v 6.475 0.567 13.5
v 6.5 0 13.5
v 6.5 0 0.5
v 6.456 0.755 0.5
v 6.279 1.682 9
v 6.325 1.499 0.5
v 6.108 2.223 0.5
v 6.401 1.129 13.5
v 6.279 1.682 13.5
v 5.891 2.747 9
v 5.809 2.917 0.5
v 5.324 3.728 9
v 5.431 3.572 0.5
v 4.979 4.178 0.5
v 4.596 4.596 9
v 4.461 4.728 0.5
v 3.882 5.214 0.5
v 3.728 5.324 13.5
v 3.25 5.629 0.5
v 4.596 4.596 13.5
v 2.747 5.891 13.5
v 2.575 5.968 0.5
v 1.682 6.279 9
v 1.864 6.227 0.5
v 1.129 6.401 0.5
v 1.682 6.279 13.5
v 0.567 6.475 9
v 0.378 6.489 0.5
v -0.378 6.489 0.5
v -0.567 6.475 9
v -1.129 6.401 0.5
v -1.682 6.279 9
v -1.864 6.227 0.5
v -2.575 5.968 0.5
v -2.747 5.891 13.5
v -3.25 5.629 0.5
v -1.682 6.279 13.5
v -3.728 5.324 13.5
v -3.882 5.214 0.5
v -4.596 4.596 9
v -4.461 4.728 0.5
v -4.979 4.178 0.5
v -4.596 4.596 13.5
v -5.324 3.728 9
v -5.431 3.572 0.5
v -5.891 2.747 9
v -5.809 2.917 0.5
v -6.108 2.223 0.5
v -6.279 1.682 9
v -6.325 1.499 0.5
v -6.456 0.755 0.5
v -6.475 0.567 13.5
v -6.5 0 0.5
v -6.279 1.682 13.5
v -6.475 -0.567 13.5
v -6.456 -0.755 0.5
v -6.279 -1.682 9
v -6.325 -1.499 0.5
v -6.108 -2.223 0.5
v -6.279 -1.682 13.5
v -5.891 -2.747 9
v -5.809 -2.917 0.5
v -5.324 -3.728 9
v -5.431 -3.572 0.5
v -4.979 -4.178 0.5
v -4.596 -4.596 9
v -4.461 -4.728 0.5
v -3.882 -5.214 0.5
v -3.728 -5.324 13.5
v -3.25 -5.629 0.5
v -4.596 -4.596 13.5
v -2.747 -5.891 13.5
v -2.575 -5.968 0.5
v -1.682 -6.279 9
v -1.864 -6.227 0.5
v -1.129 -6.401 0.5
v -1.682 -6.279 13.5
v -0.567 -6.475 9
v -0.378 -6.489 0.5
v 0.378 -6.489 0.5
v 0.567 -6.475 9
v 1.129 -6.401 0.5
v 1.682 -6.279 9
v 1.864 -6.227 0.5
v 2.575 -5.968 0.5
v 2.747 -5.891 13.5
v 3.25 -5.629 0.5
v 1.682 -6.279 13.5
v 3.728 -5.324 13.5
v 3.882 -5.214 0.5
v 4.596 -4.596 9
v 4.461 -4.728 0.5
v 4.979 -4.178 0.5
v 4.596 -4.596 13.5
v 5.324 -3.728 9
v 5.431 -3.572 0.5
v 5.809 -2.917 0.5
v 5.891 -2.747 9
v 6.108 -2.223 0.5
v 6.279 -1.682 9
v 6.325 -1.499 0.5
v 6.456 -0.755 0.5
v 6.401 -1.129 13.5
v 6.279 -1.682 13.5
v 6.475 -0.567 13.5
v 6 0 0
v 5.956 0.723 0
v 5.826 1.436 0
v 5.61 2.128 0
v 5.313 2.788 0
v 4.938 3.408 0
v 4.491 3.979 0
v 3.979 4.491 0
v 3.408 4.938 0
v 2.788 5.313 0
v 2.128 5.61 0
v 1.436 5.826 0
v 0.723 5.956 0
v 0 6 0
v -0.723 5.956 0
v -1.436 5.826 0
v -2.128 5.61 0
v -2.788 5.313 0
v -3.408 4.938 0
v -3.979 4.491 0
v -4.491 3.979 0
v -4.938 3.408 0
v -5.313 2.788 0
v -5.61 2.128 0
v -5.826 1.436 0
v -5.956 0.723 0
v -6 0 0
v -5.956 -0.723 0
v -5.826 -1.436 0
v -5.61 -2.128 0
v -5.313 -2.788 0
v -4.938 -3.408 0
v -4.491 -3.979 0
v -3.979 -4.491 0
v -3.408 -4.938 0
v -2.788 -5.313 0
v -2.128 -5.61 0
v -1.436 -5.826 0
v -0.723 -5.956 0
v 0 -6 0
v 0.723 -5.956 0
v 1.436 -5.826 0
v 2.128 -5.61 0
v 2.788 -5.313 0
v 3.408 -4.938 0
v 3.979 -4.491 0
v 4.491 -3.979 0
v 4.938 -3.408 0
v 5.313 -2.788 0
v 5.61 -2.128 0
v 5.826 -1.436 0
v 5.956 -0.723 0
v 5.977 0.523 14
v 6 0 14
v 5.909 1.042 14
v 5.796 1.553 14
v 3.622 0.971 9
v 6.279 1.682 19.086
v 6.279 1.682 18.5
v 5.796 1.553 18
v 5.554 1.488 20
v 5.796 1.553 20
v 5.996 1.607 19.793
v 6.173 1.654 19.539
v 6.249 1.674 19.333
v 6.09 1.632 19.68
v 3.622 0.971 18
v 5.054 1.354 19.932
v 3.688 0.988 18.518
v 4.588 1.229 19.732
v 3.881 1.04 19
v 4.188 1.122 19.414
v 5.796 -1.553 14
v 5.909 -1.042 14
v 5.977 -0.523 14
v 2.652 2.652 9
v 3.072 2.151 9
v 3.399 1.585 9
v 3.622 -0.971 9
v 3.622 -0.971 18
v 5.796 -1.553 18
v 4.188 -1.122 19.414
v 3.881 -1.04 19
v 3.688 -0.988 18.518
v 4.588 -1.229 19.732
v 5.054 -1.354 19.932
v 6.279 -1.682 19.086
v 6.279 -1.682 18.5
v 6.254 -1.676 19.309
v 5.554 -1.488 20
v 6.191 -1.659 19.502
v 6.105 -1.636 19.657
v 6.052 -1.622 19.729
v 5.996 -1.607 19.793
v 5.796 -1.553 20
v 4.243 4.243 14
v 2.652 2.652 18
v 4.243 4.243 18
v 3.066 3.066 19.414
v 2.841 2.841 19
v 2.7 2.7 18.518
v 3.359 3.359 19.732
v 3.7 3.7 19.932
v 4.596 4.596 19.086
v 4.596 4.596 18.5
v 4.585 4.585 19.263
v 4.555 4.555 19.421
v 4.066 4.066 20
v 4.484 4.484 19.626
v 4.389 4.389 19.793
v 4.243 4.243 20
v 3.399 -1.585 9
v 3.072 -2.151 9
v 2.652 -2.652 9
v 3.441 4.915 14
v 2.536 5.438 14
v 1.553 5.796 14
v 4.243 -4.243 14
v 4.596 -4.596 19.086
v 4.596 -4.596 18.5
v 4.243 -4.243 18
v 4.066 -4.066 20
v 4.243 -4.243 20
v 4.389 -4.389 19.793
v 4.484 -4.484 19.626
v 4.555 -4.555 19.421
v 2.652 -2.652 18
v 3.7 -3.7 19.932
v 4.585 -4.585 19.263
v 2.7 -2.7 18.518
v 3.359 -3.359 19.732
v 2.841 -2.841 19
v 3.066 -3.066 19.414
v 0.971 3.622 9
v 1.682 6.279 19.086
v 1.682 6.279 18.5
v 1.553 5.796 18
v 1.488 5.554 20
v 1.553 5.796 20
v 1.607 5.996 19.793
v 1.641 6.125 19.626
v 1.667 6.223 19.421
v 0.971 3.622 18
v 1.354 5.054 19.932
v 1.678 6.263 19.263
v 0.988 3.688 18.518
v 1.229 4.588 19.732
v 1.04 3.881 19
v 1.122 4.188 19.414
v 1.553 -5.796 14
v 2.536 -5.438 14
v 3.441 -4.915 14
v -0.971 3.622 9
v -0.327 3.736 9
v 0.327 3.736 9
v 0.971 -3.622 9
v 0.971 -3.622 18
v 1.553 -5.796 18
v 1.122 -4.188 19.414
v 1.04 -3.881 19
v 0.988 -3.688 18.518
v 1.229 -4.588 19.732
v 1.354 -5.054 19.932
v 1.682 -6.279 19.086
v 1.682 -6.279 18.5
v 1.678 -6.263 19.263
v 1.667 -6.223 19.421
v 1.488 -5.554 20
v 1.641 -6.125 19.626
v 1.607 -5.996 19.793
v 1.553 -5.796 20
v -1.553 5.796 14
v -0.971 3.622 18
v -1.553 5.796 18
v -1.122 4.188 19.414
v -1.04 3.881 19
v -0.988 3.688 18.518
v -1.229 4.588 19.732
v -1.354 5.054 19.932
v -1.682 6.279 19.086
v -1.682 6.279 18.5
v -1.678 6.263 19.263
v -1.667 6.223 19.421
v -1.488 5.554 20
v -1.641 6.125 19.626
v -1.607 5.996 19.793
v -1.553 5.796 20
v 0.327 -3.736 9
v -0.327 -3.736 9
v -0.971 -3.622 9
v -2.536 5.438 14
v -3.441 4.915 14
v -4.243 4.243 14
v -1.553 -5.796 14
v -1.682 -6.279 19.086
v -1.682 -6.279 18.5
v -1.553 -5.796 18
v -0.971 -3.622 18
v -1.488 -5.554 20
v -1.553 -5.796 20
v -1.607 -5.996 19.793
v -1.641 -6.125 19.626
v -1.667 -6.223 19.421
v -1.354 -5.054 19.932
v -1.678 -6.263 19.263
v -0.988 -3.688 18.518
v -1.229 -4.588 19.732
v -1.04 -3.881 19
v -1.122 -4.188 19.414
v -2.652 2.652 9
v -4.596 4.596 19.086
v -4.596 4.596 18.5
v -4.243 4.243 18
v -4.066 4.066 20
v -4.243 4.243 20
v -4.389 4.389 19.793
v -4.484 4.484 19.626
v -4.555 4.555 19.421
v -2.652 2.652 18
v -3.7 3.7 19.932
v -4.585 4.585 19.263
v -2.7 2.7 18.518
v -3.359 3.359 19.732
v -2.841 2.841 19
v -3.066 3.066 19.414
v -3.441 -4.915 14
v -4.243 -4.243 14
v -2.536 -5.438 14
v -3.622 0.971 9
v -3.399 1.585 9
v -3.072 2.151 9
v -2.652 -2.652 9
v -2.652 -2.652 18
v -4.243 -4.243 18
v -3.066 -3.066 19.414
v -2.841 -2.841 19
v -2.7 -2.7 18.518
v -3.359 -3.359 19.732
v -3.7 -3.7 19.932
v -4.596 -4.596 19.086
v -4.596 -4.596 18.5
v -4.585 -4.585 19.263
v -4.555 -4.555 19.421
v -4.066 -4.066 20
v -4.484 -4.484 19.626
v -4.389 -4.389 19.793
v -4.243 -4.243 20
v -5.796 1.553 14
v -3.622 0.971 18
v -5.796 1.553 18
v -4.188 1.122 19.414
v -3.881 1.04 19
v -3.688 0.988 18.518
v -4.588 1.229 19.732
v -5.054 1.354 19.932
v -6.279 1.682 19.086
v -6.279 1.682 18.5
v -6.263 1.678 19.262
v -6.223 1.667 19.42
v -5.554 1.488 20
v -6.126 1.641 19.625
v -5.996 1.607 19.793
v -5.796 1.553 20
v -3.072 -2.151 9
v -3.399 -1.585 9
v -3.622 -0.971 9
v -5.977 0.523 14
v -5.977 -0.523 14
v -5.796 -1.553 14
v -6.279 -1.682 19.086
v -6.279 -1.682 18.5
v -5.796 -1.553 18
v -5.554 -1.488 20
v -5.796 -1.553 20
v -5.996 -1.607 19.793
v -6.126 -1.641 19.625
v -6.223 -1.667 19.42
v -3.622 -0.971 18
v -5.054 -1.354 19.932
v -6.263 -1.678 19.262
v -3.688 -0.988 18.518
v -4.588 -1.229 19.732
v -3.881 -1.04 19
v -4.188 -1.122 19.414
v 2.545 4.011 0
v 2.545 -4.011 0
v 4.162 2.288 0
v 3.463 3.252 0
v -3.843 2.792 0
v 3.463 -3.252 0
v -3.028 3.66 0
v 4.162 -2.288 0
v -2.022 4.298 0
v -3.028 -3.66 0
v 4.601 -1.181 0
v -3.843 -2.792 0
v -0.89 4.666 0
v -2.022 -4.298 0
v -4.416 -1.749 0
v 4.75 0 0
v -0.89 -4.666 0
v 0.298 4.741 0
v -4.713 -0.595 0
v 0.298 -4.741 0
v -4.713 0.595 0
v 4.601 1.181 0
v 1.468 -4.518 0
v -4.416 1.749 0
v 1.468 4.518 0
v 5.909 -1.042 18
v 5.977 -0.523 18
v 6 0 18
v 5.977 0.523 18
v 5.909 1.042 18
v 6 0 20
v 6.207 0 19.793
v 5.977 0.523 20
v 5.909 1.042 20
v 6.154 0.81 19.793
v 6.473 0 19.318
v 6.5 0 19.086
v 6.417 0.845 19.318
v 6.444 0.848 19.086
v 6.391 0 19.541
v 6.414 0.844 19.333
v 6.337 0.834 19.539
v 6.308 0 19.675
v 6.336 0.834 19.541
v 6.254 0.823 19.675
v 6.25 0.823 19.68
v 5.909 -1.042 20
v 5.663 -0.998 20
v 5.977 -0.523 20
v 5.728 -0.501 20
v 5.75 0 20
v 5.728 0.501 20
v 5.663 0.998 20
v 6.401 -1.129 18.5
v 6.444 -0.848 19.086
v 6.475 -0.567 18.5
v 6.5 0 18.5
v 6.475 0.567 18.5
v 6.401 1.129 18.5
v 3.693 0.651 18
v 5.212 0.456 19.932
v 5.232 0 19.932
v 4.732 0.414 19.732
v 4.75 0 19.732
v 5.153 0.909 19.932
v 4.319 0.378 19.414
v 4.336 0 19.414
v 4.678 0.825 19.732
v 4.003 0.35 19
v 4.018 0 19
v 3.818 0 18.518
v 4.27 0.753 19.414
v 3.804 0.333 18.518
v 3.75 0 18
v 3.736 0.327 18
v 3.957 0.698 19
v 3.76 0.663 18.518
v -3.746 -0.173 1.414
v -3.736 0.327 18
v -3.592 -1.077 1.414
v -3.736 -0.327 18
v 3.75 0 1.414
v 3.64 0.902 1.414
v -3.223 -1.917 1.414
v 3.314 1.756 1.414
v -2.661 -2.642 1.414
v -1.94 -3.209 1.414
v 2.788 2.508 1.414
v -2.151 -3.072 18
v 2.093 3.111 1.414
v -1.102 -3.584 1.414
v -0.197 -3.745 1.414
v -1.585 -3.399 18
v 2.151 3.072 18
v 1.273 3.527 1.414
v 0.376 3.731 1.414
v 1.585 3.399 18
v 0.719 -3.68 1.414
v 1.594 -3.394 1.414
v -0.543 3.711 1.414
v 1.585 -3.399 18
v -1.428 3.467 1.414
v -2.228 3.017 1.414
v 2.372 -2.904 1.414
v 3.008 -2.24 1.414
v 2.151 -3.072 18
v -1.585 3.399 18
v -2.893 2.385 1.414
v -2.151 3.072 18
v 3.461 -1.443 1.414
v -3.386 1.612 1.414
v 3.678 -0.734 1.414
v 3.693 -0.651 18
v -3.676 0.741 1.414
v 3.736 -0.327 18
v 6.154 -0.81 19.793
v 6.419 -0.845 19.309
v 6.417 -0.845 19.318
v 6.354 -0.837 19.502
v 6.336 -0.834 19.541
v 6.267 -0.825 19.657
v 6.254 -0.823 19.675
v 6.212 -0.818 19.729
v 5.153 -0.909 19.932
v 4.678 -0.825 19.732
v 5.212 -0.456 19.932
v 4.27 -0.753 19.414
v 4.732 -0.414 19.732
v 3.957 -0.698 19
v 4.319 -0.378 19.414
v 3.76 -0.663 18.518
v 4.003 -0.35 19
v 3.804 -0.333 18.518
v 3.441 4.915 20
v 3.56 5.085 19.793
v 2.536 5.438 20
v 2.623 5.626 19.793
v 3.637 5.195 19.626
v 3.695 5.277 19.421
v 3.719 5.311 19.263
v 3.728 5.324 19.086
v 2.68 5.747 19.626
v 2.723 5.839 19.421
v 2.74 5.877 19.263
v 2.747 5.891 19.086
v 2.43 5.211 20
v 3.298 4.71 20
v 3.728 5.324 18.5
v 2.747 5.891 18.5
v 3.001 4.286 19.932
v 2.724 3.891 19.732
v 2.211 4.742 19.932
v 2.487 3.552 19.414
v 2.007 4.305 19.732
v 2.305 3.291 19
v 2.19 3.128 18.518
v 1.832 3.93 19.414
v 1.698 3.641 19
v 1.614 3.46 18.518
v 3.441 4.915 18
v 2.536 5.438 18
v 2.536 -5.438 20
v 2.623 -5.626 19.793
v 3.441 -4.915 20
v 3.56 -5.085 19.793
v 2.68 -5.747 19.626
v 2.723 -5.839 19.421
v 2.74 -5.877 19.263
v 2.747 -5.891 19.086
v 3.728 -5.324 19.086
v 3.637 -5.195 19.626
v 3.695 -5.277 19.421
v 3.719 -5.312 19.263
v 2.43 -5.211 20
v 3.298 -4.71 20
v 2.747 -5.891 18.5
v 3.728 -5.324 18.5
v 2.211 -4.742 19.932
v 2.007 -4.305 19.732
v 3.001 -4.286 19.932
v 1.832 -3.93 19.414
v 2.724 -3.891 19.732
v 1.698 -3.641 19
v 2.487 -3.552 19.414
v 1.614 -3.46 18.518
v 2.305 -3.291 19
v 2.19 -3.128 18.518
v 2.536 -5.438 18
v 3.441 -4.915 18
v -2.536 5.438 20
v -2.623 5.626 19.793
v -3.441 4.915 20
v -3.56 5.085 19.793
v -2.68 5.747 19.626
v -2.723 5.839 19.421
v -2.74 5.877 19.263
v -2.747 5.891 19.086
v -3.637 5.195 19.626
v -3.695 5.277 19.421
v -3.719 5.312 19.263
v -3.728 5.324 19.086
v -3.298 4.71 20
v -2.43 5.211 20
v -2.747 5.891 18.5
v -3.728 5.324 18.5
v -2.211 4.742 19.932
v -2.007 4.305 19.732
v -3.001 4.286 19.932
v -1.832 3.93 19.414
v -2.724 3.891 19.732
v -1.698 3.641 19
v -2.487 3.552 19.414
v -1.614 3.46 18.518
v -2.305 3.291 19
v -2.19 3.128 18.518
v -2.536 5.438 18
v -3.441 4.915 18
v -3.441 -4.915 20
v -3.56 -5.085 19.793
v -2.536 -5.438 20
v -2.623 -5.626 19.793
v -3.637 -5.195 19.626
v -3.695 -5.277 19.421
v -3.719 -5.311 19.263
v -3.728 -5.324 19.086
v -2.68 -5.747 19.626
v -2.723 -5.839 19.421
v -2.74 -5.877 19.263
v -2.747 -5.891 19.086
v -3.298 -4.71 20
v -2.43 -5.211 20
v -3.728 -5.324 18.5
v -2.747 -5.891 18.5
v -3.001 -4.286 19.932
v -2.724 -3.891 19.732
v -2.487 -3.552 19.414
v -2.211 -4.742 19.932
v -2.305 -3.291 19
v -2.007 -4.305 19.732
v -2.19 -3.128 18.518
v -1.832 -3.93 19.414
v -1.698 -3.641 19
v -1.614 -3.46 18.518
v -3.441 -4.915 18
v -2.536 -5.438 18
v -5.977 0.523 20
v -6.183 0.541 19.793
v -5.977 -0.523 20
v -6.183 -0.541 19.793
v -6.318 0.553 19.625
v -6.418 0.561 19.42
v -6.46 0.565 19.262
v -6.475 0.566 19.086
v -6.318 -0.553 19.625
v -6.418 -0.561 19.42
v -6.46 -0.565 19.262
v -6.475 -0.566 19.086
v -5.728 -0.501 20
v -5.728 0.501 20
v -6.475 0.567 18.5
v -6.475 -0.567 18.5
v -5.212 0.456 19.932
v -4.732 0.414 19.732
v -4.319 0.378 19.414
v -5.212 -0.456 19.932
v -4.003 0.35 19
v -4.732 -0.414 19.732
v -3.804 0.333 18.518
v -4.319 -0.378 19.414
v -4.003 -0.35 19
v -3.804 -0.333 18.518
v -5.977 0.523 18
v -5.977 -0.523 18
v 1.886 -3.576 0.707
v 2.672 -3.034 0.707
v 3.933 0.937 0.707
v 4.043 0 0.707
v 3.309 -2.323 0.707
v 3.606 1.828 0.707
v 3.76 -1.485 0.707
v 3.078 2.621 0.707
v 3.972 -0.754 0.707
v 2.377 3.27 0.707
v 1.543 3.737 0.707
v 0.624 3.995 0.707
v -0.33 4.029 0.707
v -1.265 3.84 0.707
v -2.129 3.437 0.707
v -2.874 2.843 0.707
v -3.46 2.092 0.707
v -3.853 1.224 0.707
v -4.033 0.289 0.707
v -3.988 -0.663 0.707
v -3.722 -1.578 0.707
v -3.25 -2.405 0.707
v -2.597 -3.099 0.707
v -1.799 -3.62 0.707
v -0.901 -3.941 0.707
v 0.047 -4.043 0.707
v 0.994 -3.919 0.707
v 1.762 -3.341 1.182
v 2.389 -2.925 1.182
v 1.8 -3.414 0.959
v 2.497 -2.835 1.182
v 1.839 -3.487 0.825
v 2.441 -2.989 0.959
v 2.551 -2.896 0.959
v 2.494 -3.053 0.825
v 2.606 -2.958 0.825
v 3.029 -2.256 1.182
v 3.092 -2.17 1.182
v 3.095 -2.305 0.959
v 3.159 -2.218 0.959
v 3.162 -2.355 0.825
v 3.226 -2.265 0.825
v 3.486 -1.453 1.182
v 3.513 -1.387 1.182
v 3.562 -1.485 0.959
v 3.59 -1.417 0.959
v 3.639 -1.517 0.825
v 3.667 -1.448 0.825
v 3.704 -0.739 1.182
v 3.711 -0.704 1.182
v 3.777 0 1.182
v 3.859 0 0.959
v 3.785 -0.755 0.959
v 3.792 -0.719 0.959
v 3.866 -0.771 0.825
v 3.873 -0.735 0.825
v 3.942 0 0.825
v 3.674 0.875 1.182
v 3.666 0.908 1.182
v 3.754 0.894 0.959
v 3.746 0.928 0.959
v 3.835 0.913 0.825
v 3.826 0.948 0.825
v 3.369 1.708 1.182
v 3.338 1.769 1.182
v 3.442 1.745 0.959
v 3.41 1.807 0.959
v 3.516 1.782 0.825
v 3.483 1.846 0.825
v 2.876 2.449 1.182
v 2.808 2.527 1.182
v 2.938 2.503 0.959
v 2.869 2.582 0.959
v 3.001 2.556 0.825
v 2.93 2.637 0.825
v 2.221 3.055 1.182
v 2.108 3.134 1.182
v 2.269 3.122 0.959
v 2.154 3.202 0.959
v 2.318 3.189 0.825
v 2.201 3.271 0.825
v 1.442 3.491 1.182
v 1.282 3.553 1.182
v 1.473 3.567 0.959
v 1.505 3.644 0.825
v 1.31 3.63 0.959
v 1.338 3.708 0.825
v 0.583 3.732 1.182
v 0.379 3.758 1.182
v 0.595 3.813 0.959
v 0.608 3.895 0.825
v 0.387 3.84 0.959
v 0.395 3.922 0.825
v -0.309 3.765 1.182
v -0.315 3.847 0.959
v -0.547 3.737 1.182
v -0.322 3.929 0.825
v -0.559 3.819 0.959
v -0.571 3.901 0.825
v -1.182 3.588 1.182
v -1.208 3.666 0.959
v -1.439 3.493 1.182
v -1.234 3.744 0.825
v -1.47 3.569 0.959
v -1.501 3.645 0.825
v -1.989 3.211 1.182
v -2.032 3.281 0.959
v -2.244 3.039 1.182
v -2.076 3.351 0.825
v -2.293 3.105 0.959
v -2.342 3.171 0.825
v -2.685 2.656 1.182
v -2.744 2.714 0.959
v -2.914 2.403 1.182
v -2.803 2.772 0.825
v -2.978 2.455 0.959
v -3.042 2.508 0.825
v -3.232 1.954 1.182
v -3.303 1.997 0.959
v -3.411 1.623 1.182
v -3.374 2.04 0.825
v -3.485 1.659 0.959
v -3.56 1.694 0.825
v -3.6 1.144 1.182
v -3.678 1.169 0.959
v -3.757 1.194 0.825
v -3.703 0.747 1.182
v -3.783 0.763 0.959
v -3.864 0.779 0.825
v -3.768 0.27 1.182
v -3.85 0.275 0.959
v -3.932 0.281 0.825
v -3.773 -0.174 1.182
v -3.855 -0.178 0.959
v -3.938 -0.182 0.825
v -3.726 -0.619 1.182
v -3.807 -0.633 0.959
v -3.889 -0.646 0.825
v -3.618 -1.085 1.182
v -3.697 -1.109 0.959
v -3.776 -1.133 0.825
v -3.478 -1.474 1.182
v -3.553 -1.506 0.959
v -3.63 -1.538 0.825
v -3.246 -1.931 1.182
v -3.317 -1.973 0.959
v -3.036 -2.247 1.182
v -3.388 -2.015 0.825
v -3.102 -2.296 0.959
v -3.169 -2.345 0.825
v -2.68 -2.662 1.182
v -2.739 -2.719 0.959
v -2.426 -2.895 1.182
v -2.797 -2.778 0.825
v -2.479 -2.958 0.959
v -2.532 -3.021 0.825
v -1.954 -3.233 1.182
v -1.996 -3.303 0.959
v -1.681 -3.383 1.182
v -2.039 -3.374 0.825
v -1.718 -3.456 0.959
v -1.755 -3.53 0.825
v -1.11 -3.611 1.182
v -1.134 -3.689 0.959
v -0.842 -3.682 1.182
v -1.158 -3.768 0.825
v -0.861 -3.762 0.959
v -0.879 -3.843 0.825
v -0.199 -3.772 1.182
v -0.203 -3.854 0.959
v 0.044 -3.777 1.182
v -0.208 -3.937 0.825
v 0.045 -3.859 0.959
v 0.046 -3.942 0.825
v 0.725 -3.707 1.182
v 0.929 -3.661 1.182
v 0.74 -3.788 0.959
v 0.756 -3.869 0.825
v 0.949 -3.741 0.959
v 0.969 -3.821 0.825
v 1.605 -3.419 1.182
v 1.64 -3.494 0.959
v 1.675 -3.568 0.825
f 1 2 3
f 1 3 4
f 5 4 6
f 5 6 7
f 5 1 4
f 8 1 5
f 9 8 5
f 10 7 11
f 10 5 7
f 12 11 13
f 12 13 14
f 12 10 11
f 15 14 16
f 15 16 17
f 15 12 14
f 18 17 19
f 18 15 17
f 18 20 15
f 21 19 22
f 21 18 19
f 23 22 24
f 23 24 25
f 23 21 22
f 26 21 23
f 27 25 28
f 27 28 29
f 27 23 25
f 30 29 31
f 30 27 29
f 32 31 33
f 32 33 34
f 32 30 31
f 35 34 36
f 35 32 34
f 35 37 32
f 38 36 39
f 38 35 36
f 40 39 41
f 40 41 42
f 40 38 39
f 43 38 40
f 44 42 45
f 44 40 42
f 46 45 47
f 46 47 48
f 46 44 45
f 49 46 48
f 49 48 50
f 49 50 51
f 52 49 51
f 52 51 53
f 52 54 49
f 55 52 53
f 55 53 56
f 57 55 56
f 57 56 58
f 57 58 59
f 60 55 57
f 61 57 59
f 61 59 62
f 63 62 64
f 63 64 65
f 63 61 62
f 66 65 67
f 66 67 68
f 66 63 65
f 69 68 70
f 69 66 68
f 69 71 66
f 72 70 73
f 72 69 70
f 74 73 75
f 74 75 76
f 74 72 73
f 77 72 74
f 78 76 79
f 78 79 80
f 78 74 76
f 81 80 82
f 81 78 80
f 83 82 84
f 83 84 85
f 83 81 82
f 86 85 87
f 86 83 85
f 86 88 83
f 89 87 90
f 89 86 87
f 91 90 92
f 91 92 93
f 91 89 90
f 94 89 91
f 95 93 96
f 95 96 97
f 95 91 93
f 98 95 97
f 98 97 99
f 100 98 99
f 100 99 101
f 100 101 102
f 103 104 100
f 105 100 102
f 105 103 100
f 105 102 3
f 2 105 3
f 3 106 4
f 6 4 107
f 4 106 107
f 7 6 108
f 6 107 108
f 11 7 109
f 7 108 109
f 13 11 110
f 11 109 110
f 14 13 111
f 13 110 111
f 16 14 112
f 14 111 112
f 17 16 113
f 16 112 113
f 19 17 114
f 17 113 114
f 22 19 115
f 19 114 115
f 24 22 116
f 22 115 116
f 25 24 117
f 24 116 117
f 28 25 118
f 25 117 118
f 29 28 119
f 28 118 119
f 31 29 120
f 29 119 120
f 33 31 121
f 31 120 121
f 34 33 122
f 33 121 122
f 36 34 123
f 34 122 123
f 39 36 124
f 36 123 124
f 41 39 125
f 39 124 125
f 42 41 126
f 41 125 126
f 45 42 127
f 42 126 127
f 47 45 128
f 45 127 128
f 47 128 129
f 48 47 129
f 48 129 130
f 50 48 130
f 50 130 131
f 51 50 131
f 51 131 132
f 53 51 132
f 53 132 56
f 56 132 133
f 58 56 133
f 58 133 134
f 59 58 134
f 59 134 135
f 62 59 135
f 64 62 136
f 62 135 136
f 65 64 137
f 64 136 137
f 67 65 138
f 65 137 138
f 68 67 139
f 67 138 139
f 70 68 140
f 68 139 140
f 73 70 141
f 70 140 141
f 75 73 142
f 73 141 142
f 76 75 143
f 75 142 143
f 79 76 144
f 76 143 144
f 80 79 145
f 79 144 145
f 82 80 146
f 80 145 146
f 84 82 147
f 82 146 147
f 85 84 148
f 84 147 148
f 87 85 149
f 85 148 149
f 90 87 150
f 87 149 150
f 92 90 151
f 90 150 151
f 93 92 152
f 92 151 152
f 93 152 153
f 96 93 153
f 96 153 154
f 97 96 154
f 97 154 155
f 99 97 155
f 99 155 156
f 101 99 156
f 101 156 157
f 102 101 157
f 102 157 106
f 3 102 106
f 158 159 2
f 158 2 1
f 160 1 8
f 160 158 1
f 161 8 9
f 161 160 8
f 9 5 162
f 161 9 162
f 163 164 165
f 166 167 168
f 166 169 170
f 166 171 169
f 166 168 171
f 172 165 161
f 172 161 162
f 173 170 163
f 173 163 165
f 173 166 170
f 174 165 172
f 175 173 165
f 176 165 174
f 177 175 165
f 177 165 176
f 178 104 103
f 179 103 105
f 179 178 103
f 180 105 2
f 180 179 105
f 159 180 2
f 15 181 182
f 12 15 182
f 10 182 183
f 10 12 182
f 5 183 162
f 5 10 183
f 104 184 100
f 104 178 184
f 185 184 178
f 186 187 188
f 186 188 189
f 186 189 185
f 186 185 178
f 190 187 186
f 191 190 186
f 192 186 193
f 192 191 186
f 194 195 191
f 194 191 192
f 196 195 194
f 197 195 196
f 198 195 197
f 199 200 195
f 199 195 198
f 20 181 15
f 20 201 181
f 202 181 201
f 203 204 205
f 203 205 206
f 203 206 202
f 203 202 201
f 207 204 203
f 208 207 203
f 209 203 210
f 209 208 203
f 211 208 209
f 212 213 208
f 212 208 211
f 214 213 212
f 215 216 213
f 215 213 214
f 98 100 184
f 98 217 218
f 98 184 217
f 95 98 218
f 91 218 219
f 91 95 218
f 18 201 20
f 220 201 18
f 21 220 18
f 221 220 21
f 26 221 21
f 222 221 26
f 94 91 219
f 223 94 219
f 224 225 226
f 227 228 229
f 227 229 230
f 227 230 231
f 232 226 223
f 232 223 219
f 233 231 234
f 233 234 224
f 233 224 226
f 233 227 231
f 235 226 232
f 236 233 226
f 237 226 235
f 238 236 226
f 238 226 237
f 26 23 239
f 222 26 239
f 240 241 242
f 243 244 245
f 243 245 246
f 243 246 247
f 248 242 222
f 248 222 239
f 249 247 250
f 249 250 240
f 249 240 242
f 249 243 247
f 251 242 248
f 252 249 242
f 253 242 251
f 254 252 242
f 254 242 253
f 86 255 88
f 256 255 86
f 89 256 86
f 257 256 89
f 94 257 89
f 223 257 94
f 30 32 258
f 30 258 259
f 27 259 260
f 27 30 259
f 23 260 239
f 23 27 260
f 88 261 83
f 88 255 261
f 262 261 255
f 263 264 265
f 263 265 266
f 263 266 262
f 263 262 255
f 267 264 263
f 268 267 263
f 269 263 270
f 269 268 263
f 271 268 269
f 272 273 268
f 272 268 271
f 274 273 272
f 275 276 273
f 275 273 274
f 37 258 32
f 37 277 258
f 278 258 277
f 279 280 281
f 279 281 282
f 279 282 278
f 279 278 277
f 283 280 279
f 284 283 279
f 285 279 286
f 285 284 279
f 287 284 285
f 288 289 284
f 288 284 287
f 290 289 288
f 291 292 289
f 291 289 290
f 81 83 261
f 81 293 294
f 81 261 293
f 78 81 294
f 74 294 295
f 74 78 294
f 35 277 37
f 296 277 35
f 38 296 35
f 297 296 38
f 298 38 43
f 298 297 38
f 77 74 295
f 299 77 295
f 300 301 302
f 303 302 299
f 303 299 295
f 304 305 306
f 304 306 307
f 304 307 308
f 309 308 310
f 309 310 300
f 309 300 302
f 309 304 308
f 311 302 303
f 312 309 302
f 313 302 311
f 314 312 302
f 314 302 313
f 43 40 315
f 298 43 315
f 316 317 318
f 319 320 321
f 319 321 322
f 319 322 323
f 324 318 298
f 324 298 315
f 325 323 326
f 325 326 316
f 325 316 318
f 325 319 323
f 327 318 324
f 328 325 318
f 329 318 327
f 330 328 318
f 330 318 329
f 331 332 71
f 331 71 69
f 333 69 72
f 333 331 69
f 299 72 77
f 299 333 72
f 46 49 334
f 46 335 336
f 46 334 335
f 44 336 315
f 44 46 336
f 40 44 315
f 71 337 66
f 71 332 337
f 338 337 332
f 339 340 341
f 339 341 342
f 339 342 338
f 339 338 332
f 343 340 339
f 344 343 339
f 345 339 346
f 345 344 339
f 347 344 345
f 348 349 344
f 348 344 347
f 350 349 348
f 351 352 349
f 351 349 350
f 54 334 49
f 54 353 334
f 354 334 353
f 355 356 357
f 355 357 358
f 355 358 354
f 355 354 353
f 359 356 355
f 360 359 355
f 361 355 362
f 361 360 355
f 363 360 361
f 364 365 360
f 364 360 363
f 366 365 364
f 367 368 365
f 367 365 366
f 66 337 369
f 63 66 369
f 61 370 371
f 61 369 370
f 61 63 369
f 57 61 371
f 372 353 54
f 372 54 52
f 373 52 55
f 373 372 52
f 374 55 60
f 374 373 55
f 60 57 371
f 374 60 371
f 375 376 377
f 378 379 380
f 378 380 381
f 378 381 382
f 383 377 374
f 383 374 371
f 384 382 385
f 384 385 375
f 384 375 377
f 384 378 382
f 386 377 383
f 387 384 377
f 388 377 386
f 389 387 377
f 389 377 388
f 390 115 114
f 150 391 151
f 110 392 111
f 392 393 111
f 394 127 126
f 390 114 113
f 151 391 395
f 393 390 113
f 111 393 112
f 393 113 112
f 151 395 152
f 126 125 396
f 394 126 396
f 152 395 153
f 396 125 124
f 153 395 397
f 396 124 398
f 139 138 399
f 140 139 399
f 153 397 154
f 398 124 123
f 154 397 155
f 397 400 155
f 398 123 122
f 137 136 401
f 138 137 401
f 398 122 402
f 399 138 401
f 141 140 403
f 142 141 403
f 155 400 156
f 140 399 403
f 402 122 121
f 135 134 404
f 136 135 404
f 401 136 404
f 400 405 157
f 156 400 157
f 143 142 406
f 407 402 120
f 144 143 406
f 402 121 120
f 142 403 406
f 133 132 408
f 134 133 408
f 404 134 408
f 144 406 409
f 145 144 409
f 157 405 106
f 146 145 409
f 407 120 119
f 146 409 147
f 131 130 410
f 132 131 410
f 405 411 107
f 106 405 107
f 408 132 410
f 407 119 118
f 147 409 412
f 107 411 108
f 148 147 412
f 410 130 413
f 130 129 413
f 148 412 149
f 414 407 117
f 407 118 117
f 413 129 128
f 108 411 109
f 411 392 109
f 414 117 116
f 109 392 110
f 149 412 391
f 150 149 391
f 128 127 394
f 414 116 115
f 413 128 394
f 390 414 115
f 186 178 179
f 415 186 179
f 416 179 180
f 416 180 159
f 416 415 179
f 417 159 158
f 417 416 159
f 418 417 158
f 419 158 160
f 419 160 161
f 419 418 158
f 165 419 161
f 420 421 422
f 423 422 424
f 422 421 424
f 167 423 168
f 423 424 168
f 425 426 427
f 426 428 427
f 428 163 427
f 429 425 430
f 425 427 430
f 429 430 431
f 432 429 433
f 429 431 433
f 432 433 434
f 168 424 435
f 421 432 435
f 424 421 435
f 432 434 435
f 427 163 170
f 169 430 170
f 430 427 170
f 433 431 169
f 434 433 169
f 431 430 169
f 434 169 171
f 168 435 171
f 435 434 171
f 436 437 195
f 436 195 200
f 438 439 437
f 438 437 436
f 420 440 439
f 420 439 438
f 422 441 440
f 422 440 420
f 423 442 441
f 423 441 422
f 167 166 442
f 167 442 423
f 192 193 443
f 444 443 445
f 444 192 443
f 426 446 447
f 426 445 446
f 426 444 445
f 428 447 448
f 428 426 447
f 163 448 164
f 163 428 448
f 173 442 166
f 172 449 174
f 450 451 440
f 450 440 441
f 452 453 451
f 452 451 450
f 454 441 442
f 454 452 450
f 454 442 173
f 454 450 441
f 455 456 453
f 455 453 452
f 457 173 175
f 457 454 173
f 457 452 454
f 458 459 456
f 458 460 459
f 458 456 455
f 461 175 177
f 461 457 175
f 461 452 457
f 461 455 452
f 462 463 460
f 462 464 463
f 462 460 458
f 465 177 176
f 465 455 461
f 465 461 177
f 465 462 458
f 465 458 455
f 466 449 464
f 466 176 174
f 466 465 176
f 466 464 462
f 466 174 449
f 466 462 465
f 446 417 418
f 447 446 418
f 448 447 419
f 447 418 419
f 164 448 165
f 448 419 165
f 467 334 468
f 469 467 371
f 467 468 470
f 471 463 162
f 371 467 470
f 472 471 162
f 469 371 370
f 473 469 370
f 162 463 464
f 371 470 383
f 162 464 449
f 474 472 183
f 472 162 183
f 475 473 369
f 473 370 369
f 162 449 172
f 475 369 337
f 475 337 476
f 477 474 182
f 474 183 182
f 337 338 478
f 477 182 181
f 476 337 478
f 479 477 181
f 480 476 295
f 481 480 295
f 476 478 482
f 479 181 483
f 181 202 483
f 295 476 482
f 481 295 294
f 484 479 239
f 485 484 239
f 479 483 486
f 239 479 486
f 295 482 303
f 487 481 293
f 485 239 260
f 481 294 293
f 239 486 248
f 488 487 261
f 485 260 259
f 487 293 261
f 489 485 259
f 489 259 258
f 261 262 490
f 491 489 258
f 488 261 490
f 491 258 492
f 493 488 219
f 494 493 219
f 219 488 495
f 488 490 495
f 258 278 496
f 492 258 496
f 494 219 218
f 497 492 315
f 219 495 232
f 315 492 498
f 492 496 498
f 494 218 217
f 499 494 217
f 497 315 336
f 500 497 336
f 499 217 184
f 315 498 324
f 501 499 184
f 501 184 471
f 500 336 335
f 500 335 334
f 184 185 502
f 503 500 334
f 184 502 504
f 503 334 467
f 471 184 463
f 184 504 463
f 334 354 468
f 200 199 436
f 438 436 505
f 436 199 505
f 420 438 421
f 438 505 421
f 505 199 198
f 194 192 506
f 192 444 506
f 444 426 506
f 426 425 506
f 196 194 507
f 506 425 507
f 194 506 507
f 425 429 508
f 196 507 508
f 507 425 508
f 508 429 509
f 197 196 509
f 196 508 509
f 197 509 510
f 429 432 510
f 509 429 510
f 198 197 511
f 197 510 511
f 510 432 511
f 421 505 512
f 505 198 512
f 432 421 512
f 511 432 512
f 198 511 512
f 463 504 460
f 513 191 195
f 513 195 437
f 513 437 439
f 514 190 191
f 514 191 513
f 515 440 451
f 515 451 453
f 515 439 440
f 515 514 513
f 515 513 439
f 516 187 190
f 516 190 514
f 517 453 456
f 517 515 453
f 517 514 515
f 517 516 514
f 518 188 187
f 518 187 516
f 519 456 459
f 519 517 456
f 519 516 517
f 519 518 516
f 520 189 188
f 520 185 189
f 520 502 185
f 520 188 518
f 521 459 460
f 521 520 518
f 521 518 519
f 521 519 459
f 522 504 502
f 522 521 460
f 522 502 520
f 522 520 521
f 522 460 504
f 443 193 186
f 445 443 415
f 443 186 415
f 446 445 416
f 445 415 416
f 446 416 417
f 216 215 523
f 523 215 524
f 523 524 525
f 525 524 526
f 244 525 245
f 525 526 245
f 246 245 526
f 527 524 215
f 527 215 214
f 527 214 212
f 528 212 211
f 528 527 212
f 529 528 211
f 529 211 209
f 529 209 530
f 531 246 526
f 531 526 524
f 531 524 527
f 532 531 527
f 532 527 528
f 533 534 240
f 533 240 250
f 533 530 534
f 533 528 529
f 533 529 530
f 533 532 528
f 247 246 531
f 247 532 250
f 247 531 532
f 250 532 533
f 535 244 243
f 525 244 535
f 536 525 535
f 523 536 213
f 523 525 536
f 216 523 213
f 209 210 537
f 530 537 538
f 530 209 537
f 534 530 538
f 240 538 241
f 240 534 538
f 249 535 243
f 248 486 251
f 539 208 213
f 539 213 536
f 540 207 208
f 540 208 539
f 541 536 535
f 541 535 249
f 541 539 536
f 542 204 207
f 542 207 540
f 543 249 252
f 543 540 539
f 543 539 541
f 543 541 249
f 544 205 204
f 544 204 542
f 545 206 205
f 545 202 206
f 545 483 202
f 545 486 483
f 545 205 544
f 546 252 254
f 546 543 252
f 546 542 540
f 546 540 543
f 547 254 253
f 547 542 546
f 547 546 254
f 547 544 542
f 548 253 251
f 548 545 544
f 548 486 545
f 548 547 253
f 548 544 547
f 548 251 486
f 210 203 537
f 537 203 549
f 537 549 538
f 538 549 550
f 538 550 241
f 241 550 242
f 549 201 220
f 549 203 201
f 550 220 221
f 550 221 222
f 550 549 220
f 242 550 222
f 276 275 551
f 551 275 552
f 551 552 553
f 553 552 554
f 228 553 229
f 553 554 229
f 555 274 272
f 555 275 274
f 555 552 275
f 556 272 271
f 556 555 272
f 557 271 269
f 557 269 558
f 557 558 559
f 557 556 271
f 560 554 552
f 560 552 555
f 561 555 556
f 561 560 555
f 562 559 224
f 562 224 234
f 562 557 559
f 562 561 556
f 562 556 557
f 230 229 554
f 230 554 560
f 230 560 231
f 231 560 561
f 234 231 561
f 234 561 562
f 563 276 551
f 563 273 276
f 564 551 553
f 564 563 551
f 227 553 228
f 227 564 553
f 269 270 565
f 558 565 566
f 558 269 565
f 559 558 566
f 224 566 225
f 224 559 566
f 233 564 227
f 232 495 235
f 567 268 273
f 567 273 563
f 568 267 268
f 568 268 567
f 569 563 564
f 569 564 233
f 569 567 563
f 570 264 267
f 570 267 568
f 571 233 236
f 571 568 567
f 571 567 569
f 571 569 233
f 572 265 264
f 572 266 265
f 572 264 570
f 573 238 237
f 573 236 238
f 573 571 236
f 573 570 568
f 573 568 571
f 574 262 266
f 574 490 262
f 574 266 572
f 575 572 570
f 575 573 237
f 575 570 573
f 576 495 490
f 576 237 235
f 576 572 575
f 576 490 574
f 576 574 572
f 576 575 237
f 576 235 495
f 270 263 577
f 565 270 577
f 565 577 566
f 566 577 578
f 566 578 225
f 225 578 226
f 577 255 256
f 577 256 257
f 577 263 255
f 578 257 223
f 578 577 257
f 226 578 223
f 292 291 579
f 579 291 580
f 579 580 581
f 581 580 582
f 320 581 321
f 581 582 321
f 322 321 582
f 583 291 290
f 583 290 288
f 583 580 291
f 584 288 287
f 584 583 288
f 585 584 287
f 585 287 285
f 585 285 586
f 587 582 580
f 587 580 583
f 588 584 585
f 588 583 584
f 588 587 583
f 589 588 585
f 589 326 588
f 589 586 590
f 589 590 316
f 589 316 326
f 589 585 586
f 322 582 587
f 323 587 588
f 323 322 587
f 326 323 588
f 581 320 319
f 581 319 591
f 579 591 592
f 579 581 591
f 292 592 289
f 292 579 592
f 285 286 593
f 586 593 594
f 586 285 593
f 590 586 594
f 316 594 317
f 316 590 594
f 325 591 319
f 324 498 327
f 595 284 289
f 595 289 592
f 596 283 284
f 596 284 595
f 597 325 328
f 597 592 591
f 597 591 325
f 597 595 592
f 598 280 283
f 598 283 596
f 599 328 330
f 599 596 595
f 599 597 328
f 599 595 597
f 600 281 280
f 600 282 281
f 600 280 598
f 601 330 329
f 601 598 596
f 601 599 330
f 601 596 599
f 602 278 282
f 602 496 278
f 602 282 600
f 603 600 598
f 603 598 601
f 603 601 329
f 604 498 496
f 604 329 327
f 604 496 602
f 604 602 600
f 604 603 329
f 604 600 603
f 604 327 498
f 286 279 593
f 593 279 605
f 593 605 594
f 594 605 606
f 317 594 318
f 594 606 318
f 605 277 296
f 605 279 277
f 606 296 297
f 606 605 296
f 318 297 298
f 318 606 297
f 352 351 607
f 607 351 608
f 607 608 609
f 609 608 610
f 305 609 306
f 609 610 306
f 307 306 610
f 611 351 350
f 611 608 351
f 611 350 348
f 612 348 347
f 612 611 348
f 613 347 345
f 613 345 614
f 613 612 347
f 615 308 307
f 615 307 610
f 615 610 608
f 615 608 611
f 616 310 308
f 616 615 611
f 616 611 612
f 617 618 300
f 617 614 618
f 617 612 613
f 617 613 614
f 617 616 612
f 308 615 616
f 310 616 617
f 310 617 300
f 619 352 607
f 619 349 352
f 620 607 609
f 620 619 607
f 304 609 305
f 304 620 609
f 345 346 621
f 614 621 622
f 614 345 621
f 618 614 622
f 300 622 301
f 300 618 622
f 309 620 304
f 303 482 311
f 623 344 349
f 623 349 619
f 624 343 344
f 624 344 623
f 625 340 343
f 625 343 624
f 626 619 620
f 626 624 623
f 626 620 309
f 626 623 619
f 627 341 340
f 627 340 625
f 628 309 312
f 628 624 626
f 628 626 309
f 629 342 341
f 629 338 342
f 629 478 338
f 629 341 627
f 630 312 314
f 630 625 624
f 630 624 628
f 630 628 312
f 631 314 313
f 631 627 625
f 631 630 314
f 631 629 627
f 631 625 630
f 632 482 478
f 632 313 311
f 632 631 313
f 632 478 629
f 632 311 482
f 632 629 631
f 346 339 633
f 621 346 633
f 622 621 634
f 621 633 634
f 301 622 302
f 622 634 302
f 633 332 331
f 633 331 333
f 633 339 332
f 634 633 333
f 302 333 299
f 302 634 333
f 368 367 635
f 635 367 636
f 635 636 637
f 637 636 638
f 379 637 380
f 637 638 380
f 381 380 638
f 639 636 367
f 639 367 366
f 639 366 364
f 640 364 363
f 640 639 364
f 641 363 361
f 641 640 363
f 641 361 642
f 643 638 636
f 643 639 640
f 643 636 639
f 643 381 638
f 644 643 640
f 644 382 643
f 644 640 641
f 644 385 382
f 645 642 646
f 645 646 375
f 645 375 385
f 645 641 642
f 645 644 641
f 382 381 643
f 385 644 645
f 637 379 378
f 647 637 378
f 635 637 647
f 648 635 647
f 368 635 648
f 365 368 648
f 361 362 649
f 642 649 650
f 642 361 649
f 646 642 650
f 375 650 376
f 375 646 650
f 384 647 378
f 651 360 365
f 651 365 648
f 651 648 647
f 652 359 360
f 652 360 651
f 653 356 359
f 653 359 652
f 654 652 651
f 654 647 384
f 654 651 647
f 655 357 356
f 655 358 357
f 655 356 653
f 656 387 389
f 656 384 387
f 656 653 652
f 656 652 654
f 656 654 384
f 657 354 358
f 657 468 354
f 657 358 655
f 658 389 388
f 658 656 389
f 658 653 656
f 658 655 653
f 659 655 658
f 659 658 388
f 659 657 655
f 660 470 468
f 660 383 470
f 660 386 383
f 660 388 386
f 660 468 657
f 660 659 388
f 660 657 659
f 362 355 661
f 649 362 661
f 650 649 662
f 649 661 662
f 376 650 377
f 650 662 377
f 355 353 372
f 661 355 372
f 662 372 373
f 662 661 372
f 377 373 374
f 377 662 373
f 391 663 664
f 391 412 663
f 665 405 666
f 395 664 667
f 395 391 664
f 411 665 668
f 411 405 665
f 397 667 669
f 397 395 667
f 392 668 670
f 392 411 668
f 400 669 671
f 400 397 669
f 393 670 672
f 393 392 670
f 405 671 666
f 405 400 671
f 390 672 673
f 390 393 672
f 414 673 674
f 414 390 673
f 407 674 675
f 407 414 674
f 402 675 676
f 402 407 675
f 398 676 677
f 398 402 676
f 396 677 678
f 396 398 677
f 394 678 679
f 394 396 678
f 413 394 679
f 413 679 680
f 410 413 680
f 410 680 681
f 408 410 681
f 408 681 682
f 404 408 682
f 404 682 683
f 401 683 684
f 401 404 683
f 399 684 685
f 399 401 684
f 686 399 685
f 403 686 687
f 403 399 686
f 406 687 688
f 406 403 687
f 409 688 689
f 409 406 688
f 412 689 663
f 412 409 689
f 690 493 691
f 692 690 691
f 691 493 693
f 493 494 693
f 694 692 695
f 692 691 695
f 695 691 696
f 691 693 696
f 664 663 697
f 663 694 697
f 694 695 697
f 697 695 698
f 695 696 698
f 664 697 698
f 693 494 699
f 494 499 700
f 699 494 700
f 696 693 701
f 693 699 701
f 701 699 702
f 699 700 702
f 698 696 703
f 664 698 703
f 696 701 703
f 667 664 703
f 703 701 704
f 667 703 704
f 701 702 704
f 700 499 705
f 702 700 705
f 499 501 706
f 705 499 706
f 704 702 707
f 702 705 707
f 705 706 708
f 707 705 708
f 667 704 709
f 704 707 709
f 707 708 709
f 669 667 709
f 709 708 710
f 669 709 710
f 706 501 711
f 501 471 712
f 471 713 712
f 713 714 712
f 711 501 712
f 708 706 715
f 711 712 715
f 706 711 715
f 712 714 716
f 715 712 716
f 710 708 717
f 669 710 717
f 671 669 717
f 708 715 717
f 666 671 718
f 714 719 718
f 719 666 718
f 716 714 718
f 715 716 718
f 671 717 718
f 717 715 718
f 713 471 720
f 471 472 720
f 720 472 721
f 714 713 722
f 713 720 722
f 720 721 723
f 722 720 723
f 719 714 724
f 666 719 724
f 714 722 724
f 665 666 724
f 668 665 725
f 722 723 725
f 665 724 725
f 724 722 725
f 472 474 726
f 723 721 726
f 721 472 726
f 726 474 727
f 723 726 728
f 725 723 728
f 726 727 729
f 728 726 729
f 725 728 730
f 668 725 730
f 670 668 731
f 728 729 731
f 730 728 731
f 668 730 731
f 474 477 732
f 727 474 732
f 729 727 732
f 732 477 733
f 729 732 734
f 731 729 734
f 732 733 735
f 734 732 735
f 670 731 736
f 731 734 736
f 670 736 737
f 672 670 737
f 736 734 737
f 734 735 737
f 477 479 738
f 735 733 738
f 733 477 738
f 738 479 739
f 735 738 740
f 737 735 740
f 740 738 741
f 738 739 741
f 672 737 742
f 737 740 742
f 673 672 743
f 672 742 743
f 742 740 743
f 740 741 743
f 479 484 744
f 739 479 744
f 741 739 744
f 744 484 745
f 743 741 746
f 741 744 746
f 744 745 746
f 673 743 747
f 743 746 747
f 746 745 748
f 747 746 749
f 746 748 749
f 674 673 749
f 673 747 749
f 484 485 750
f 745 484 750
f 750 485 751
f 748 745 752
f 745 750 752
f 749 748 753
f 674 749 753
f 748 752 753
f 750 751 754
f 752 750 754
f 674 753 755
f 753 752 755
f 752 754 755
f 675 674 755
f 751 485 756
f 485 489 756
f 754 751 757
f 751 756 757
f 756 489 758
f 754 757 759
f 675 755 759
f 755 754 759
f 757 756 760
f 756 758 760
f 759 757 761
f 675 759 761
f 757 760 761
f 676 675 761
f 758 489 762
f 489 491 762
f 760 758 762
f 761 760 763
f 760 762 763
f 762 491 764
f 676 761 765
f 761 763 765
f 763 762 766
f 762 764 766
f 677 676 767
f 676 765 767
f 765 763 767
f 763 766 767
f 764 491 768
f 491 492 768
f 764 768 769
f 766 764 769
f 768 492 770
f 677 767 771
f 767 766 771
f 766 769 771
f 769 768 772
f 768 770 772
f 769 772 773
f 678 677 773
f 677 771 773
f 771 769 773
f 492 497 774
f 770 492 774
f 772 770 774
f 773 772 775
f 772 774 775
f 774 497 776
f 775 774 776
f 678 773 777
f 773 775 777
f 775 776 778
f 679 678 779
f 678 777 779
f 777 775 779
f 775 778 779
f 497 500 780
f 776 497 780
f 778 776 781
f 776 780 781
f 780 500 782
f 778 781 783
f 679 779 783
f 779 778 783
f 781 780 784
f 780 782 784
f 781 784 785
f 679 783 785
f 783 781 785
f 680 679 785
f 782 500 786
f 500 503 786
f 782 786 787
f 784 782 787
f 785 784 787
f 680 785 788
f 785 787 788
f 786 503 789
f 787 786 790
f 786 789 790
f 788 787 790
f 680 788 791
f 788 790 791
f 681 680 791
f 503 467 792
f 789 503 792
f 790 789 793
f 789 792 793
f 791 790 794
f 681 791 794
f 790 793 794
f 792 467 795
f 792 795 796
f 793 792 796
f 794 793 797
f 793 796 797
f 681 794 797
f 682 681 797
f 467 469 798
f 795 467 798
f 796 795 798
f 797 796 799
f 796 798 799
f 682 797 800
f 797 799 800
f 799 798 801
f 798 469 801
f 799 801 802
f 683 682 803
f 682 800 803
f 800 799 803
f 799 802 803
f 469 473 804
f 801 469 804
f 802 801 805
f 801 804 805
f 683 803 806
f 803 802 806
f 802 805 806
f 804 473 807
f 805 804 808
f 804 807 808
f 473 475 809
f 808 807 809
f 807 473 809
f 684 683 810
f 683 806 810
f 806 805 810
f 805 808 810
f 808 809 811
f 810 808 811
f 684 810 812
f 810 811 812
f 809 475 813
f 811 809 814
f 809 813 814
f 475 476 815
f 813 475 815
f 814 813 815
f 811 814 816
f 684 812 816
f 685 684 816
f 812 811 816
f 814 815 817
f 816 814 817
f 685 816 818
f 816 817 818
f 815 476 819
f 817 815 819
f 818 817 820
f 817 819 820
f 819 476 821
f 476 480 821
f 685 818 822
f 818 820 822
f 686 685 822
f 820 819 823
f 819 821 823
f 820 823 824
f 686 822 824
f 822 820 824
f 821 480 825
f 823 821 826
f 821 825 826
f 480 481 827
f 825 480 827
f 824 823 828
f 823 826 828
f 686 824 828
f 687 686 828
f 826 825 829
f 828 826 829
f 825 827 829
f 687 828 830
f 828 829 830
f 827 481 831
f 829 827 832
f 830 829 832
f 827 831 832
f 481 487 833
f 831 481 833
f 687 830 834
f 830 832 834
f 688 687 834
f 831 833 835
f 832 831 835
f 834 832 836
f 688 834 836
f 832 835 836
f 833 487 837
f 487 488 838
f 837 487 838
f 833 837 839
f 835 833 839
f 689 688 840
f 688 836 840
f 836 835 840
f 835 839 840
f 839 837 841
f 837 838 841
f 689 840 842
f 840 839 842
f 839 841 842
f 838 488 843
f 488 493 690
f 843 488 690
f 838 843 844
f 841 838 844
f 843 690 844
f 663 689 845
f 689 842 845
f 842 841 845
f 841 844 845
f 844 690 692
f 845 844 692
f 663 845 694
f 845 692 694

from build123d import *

# Parameters (mm, degrees)
CYLINDER001_R      = 3.75
CYLINDER001_DEPTH  = 30
CYLINDER002_R      = 6
CYLINDER002_DEPTH  = 6
CYLINDER003_R      = 8
CYLINDER003_DEPTH  = 6
CHAMFER_SIZE       = 1
CYLINDER_R         = 6.5
CYLINDER_DEPTH     = 20
FILLET_R           = 2
CHAMFER001_SIZE    = 1
FILLET001_R        = 1
POCKET_DEPTH       = 11
POLARPATTERN_COUNT = 6
CHAMFER002_SIZE    = 0.5
FILLET002_R        = 1
CHAMFER003_SIZE    = 0.5


with BuildPart() as cilindro001:
    # Cylinder001 → Cylinder001 (new body)
    with BuildSketch(Plane.XY):
        Circle(CYLINDER001_R)
    extrude(amount=CYLINDER001_DEPTH)


with BuildPart() as cilindro002:
    # Cylinder002 → Cylinder002 (new body)
    with BuildSketch(Plane.XY):
        Circle(CYLINDER002_R)
    extrude(amount=CYLINDER002_DEPTH)


with BuildPart() as chamfer_body:
    # Cylinder003 → Cylinder003 (new body)
    with BuildSketch(Plane.XY):
        Circle(CYLINDER003_R)
    extrude(amount=CYLINDER003_DEPTH)

    # Cut: cut Cilindro002
    add(cilindro002.part, mode=Mode.SUBTRACT)


with BuildPart() as chamfer_body_1:
    # Cut placement: moved
    add(chamfer_body.part.moved(Location((0, 0, 13))))

    # Chamfer
    chamfer_edges = [chamfer_body_1.edges().sort_by_distance(p)[0] for p in [
        (-6, 0, 19),
        (-6, 0, 13),
    ]]
    chamfer(chamfer_edges, length=CHAMFER_SIZE)


with BuildPart() as chamfer003:
    # Cylinder → Cylinder (new body)
    with BuildSketch(Plane.XY):
        Circle(CYLINDER_R)
    extrude(amount=CYLINDER_DEPTH)

    # Cut001: cut Chamfer body
    add(chamfer_body_1.part, mode=Mode.SUBTRACT)

    # Cut002: cut Cilindro001
    add(cilindro001.part, mode=Mode.SUBTRACT)

    # Fillet
    fillet_edges = [chamfer003.edges().sort_by_distance(p)[0] for p in [
        (-3.75, 0, 20),
    ]]
    fillet(fillet_edges, radius=FILLET_R)

    # Chamfer001
    chamfer001_edges = [chamfer003.edges().sort_by_distance(p)[0] for p in [
        (-3.75, 0, 0),
    ]]
    chamfer(chamfer001_edges, length=CHAMFER001_SIZE)

    # Fillet001
    fillet001_edges = [chamfer003.edges().sort_by_distance(p)[0] for p in [
        (-3.75, 0, 1),
    ]]
    fillet(fillet001_edges, radius=FILLET001_R)

    # Sketch → Pocket (cut)
    with BuildSketch(Plane.XY.offset(20)):
        Polygon((0, 0), (-1.811733, 6.761481), (1.811733, 6.761481), align=None)
    pocket = extrude(amount=-POCKET_DEPTH, mode=Mode.SUBTRACT)

    # PolarPattern: Pocket ×6 about axis
    polarpattern_axis = Axis((0, 0, 20), (0, 0, 1))
    for i in range(1, POLARPATTERN_COUNT):
        add(pocket.rotate(polarpattern_axis, i * 360 / POLARPATTERN_COUNT), mode=Mode.SUBTRACT)

    # Chamfer002
    chamfer002_edges = [chamfer003.edges().sort_by_distance(p)[0] for p in [
        (3.25, -5.629165, 20),
        (-3.25, -5.629165, 20),
        (6.444392, 0.84842, 20),
        (6.444392, -0.84842, 20),
        (3.25, 5.629165, 20),
        (-3.25, 5.629165, 20),
        (-6.5, 0, 20),
    ]]
    chamfer(chamfer002_edges, length=CHAMFER002_SIZE)

    # Fillet002
    fillet002_edges = [chamfer003.edges().sort_by_distance(p)[0] for p in [
        (6.444392, 0.84842, 19.5),
        (6.444392, -0.84842, 19.5),
        (3.25, -5.629165, 19.5),
        (-3.25, -5.629165, 19.5),
        (3.25, 5.629165, 19.5),
        (-3.25, 5.629165, 19.5),
        (-6.5, 0, 19.5),
    ]]
    fillet(fillet002_edges, radius=FILLET002_R)

    # Chamfer003
    chamfer003_edges = [chamfer003.edges().sort_by_distance(p)[0] for p in [
        (-6.5, 0, 0),
    ]]
    chamfer(chamfer003_edges, length=CHAMFER003_SIZE)


solid = chamfer003.part
